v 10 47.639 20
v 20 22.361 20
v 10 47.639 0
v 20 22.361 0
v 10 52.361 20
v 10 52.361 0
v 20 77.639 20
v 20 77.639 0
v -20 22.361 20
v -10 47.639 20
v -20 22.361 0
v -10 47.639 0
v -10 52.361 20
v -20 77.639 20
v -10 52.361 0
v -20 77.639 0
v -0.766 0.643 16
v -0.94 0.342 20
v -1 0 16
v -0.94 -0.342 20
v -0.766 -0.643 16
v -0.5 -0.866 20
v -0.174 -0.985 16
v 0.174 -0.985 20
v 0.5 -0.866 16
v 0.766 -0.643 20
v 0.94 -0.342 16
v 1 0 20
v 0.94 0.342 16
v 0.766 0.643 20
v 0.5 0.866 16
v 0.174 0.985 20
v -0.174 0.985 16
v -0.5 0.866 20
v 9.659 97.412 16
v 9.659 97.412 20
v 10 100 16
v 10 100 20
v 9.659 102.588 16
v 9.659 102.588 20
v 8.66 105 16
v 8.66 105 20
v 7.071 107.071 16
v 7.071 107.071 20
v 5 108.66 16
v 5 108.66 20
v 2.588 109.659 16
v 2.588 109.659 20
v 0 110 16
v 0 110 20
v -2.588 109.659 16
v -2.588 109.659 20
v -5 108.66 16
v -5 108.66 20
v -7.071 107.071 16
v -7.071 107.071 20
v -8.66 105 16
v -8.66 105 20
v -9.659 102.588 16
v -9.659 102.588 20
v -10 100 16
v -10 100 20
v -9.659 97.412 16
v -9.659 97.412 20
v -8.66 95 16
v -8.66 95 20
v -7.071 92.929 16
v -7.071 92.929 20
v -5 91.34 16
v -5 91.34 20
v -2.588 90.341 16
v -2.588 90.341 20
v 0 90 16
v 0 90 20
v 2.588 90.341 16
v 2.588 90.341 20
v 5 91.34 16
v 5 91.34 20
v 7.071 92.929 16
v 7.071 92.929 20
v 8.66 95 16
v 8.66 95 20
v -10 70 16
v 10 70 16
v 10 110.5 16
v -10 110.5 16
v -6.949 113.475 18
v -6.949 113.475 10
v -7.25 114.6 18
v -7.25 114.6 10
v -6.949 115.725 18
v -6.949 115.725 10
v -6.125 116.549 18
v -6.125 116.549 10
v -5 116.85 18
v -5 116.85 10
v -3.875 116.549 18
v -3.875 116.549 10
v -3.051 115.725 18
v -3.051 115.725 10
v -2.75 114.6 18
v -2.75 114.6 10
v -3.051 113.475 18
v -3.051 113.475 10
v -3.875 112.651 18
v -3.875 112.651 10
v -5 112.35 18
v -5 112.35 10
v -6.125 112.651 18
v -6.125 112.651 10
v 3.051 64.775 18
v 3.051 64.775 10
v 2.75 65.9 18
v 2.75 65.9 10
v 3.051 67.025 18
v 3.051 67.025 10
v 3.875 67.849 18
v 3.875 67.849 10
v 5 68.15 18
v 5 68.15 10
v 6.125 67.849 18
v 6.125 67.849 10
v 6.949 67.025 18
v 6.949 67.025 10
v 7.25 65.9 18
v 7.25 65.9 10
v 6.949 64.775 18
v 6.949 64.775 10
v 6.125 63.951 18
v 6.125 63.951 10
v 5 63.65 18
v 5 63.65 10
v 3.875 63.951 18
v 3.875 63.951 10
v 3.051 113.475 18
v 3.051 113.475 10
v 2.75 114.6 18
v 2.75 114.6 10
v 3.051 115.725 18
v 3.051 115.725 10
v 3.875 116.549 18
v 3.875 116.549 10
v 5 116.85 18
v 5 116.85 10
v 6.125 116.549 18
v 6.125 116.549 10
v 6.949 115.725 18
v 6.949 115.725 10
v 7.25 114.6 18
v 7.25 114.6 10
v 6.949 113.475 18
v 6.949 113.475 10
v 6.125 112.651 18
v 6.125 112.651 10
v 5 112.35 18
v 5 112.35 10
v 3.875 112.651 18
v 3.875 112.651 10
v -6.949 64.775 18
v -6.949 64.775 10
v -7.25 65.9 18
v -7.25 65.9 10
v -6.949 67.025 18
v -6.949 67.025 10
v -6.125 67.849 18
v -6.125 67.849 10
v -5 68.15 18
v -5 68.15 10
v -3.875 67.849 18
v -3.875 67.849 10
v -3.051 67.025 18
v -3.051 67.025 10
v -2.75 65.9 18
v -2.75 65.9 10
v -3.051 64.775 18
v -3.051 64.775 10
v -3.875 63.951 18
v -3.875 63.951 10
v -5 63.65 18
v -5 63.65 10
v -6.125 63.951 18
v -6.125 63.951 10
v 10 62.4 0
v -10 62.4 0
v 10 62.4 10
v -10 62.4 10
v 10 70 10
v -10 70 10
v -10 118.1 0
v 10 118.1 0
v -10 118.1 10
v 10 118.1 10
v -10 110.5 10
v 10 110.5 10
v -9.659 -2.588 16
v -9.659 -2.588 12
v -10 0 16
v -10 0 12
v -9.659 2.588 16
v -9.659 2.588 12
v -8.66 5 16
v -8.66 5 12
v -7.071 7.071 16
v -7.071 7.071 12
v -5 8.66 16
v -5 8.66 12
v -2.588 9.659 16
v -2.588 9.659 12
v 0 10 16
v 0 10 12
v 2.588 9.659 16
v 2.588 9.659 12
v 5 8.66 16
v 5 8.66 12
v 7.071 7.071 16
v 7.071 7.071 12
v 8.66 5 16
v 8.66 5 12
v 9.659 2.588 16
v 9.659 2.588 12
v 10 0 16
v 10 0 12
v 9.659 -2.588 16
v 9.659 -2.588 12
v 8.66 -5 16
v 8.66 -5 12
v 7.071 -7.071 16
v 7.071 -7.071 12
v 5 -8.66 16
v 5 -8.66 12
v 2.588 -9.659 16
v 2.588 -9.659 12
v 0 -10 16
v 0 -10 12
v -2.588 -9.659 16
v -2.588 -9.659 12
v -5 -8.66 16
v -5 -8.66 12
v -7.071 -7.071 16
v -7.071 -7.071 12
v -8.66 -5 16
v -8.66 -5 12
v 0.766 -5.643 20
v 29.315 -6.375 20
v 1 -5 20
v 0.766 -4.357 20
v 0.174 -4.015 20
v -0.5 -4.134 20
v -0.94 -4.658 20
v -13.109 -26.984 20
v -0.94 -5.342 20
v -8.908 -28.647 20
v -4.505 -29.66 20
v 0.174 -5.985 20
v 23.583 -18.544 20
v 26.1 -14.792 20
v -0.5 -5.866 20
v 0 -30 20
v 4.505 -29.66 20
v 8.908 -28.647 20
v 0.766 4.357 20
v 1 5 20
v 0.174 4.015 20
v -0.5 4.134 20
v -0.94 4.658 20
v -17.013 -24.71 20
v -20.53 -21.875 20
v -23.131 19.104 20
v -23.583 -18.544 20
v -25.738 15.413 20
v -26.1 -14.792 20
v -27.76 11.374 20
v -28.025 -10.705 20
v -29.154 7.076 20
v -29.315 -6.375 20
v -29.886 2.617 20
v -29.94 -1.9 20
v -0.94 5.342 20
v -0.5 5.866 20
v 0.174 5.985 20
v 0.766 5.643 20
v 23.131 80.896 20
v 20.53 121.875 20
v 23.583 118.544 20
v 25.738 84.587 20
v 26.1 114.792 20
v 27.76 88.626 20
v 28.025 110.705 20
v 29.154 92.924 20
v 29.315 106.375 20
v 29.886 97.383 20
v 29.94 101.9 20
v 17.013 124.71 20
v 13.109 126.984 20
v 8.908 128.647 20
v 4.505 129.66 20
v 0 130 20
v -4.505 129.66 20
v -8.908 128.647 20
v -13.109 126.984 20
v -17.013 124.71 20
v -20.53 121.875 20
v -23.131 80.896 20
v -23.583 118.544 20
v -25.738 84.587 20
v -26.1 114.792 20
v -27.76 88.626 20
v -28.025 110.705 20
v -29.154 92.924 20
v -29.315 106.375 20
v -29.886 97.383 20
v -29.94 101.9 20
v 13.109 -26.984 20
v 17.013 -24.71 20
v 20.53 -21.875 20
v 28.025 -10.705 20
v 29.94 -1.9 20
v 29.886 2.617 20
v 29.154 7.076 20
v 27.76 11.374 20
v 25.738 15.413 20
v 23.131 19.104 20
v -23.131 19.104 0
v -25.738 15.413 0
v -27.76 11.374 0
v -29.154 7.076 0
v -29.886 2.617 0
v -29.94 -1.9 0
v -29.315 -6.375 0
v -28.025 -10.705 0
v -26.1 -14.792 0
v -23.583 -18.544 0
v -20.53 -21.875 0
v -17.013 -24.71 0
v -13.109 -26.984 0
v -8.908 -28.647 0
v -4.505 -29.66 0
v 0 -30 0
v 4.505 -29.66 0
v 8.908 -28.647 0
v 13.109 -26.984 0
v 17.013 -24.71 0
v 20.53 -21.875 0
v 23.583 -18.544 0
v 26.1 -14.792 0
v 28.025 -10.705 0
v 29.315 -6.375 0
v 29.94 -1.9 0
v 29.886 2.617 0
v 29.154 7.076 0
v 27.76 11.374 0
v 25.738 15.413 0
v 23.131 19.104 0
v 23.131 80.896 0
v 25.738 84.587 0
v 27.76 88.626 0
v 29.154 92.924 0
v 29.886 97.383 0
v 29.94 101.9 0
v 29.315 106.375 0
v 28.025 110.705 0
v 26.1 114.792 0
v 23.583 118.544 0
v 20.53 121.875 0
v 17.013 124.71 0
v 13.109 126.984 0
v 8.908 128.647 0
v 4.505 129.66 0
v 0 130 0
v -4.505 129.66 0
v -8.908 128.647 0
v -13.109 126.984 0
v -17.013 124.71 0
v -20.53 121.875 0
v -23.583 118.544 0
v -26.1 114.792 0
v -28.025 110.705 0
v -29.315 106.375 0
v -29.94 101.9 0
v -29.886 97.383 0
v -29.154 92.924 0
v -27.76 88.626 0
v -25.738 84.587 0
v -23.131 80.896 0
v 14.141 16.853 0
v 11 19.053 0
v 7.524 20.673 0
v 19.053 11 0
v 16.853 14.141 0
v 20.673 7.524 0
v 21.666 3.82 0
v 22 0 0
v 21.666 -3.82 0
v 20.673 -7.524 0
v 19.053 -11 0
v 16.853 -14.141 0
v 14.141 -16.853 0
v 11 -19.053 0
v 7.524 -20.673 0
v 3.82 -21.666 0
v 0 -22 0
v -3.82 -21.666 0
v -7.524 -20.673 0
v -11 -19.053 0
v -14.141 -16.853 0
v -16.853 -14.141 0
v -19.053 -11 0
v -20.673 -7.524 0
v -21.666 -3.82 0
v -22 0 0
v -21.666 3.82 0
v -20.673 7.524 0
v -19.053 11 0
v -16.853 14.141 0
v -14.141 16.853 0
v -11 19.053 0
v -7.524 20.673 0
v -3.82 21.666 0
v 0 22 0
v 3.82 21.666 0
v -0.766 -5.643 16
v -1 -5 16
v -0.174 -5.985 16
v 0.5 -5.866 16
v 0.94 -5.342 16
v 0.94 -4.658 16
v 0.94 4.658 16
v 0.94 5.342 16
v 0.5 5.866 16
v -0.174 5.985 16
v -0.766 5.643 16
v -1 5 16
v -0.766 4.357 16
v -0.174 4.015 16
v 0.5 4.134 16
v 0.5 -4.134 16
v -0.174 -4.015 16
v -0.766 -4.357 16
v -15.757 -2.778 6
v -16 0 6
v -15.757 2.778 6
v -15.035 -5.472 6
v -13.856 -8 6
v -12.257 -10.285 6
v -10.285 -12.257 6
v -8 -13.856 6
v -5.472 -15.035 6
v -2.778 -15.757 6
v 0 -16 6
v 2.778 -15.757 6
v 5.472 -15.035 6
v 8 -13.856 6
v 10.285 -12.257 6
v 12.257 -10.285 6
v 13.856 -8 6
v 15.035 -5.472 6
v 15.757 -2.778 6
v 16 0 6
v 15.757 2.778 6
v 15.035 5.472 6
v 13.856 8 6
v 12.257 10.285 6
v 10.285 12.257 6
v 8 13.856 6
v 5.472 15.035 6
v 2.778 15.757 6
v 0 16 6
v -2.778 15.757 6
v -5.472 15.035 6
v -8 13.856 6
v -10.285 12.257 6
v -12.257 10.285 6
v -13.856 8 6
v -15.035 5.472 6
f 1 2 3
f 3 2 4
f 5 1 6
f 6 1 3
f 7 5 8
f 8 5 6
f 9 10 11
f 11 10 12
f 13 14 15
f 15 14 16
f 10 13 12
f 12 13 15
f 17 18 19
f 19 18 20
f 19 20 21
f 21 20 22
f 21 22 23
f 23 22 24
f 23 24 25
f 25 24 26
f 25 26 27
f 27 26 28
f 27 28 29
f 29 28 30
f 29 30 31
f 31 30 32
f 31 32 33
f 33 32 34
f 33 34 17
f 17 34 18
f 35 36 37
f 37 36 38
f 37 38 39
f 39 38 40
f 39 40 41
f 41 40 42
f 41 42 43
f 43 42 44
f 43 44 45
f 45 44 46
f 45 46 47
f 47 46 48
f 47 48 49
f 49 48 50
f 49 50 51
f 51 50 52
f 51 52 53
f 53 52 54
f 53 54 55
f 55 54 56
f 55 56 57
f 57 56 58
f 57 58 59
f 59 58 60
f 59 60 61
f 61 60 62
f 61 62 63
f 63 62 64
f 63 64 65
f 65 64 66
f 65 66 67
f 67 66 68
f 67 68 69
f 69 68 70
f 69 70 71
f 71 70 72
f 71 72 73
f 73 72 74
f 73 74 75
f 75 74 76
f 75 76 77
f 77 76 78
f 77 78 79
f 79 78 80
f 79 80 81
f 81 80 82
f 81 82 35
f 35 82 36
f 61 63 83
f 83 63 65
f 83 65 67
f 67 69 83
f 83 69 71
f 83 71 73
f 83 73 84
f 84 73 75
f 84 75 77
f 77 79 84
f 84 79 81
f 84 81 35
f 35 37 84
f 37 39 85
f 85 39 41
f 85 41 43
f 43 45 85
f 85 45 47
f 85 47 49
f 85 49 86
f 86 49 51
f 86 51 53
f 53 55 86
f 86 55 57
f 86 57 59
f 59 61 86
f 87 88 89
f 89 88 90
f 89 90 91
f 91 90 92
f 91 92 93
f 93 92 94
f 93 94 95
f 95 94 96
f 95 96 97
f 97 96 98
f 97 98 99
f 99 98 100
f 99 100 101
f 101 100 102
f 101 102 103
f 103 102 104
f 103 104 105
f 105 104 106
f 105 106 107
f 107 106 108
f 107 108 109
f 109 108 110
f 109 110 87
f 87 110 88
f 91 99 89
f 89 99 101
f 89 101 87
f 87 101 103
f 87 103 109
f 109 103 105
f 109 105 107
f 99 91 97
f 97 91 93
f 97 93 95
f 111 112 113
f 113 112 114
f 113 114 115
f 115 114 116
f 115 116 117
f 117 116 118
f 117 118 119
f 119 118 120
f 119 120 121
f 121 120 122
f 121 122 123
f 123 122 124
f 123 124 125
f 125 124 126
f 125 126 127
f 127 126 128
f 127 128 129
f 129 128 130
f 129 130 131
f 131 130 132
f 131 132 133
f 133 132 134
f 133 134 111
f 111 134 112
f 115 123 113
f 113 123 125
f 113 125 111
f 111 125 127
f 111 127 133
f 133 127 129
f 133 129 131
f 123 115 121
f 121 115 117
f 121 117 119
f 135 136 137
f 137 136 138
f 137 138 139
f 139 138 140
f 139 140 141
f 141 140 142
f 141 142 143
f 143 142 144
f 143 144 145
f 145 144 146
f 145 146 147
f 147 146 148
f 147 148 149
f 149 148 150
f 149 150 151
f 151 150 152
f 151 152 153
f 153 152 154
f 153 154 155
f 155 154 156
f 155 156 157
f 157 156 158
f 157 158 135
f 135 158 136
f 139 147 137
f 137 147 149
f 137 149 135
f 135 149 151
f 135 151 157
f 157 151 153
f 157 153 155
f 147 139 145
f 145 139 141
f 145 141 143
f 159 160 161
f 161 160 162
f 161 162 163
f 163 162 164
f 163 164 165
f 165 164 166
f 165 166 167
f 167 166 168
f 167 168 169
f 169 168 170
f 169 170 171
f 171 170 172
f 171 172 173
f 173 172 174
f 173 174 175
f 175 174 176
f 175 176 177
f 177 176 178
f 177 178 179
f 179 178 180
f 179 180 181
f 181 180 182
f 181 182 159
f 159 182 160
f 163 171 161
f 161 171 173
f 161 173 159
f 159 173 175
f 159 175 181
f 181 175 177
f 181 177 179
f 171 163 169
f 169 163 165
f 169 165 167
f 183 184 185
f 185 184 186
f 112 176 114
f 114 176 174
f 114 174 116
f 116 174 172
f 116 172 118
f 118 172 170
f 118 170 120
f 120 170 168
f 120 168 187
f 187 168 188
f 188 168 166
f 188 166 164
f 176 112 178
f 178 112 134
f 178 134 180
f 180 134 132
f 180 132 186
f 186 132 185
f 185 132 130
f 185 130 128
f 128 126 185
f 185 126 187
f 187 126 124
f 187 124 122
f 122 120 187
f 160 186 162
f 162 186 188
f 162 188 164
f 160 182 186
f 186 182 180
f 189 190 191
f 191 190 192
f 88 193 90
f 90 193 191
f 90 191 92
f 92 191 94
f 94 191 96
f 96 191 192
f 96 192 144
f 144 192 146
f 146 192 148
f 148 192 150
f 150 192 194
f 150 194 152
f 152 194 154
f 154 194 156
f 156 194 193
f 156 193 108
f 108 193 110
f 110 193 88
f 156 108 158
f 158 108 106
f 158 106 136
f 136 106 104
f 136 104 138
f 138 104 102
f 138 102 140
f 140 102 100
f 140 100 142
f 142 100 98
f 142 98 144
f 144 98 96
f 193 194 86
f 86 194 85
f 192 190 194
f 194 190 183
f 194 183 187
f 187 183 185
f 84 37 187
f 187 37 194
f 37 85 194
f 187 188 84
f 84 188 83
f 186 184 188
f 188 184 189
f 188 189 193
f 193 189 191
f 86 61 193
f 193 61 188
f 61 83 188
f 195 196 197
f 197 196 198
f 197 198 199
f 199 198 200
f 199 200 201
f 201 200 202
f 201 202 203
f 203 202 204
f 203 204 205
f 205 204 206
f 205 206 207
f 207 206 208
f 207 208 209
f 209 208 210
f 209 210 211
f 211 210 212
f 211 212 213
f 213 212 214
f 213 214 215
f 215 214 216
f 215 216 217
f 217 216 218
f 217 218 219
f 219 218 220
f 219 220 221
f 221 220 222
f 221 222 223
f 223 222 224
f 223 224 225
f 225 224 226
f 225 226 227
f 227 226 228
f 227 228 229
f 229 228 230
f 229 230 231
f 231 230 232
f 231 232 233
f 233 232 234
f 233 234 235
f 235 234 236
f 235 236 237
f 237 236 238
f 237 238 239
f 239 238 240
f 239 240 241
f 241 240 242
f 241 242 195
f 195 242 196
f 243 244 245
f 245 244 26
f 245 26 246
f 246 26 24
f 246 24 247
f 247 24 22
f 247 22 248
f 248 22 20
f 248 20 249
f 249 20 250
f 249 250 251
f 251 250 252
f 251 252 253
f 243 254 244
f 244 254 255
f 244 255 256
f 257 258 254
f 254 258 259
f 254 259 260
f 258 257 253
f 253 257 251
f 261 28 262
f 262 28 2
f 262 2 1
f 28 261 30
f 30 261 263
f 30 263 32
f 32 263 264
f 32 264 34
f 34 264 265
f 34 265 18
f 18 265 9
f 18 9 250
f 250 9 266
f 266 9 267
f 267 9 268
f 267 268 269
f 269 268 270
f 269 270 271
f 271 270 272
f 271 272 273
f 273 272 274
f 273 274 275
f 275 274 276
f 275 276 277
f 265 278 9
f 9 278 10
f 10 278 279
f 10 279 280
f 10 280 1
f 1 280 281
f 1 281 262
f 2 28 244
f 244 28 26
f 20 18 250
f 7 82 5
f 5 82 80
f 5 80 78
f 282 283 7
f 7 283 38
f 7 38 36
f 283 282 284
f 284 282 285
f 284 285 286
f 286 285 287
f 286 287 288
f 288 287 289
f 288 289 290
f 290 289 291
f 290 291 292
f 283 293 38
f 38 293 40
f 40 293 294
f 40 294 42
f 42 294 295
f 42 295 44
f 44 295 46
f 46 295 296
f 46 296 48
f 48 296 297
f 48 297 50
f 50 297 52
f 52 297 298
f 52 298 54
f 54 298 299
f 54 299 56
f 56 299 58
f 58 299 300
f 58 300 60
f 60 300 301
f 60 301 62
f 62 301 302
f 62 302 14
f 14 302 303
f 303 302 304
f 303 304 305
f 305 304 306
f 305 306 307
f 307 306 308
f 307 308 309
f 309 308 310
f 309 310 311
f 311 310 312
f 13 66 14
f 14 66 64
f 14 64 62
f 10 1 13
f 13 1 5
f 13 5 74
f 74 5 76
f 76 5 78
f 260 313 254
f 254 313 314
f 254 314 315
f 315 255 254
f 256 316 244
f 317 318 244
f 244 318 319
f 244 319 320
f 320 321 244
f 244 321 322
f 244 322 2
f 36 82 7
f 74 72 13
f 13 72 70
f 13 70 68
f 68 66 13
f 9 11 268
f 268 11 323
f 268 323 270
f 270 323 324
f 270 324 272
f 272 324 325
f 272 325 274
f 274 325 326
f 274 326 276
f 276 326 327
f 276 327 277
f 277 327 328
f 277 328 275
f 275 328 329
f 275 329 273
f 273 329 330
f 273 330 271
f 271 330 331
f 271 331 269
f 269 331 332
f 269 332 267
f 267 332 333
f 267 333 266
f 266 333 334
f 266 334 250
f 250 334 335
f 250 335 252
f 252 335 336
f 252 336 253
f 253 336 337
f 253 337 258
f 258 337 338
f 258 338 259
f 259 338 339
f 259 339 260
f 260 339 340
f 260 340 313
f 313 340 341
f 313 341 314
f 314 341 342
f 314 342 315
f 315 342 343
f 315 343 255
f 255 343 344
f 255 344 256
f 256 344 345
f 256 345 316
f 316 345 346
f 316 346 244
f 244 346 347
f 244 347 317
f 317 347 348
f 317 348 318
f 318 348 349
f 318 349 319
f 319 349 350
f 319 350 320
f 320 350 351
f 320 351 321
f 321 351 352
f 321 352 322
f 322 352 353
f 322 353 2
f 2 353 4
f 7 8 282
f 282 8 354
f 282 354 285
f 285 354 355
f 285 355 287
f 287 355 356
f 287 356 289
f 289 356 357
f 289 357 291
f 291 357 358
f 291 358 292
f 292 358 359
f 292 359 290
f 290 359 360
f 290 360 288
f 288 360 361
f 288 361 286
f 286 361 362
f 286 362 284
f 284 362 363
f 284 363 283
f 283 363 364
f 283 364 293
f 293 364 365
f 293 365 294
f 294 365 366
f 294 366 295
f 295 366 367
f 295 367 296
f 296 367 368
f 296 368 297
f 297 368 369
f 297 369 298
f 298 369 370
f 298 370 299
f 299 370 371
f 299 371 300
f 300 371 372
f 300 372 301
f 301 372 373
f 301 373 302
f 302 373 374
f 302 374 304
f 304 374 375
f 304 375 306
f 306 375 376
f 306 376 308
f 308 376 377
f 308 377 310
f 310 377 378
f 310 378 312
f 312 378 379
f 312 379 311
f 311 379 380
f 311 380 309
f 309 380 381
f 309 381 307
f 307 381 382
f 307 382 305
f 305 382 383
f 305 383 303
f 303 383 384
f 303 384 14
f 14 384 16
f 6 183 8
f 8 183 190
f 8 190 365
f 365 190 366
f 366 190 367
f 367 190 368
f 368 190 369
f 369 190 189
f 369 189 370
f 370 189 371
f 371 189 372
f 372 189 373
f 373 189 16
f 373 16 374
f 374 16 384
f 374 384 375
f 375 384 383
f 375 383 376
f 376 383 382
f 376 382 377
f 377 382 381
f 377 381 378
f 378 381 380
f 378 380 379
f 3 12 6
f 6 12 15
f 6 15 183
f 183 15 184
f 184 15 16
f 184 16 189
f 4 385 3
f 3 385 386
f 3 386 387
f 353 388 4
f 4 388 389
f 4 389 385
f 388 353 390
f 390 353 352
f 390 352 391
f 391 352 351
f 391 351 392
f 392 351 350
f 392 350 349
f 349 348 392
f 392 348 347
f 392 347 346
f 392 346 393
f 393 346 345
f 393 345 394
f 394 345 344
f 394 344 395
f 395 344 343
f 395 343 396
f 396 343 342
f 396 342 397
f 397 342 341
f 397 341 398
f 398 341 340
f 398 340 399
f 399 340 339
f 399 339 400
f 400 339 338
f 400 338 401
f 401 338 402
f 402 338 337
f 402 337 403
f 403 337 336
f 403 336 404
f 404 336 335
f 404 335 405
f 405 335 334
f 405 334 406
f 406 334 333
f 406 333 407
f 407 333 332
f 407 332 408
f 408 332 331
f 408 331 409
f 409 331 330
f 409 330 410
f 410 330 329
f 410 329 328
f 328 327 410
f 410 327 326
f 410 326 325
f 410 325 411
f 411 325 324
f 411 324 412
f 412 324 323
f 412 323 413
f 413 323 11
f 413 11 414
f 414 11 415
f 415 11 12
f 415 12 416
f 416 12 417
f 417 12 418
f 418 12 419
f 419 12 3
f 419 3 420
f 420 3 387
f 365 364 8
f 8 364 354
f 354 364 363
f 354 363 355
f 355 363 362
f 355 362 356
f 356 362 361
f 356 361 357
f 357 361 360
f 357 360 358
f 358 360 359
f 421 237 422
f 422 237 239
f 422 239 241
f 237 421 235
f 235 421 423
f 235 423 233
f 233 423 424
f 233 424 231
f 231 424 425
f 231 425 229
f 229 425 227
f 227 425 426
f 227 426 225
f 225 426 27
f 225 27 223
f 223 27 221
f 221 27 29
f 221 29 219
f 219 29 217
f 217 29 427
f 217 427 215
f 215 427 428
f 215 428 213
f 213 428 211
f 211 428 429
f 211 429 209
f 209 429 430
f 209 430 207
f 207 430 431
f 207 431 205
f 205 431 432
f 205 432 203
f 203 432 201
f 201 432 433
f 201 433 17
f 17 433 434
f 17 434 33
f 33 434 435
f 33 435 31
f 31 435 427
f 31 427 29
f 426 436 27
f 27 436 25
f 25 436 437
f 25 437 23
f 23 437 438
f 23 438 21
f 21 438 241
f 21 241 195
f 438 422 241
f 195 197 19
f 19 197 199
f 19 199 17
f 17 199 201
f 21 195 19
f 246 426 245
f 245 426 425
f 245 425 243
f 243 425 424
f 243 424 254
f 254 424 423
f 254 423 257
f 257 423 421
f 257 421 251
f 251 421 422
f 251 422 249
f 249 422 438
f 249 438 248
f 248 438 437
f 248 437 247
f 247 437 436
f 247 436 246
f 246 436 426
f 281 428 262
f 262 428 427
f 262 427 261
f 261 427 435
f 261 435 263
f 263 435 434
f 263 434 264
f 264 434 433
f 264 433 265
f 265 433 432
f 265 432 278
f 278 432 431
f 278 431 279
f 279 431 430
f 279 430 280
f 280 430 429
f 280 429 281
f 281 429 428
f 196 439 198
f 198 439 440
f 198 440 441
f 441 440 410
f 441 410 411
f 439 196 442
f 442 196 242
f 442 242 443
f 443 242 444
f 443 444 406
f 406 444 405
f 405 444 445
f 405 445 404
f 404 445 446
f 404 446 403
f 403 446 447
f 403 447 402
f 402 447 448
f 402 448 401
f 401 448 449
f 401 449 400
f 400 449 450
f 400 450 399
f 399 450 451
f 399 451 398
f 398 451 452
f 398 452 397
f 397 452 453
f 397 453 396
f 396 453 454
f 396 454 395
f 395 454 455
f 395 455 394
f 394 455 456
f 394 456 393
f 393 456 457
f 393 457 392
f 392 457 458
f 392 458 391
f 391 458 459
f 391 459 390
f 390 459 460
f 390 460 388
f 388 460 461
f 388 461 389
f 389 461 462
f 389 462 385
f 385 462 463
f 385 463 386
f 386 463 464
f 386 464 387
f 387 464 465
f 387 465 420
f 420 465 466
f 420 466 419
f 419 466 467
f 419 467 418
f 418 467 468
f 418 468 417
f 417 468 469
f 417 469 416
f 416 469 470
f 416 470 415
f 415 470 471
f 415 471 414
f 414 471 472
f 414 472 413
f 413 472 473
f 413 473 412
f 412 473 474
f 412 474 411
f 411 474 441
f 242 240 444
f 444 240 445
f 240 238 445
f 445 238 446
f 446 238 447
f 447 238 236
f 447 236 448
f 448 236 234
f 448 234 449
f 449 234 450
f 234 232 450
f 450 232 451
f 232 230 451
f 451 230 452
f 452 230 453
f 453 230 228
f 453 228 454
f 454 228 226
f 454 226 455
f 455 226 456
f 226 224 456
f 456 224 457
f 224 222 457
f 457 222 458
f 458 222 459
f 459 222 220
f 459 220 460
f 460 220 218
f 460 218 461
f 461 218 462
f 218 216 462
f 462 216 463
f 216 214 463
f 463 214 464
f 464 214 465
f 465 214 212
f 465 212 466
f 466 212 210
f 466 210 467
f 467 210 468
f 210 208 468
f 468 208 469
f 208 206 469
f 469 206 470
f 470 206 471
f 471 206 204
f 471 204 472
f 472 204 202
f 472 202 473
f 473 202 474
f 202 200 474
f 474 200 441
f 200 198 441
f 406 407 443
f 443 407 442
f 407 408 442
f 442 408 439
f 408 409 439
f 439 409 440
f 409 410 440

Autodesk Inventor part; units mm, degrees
ref_plane "YZ Plane" through (0, 0, 0) normal (1, 0, 0) x (0, 1, 0)
ref_plane "XZ Plane" through (0, 0, 0) normal (0, 1, 0) x (-1, 0, 0)
ref_plane "XY Plane" through (0, 0, 0) normal (0, 0, 1) x (1, 0, 0)
sketch "Sketch1" plane through (0, 0, 0) normal (0, 0, 1) x (1, 0, 0)
  circle A0 centre (0, 0) radius 30
  circle A1 centre (0, 100) radius 30
  line L0 (-20, 0) -> (20, 0)
  line L1 (20, 0) -> (20, 100)
  line L2 (20, 100) -> (-20, 100)
  line L3 (-20, 100) -> (-20, 0)
  point P0 (20, 77.6393)
  point P1 (-20, 77.6393)
  point P2 (-20, 22.3607)
  point P3 (20, 22.3607)
  dimension "d0" = 60
  dimension "d1" = 60
  dimension "d2" = 40
extrude "Extrusion1" add sketch "Sketch1" along normal blind 20
sketch "Sketch2" plane through (0, 0, 20) normal (0, 0, 1) x (1, 0, 0)
  circle A0 centre (0, 0) radius 10
  dimension "d5" = 20
extrude "Extrusion2" cut sketch "Sketch2" against normal blind 16
sketch "Sketch3" plane through (0, 0, 4) normal (0, 0, 1) x (1, 0, 0)
  circle A0 centre (0, 0) radius 1
  circle A1 centre (5, 0) radius 1
  circle A2 centre (-5, 0) radius 1
  dimension "d11" = 2
  dimension "d12" = 2
  dimension "d13" = 2
extrude "Extrusion3" cut sketch "Sketch3" against normal blind 28.45
sketch "Sketch4" plane through (0, 0, 0) normal (0, 0, -1) x (-1, 0, 0)
  line L0 (0, 100) -> (10, 100)
  line L1 (10, 100) -> (10, 70)
  line L2 (10, 70) -> (0, 70)
  line L3 (0, 70) -> (0, 100)
  line L4 (0, 100) -> (-10, 100)
  line L5 (-10, 100) -> (-10, 70)
  line L6 (-10, 70) -> (0, 70)
  line L7 (0, 70) -> (0, 100)
  line L8 (10, 100) -> (-10, 100)
  line L9 (-10, 100) -> (-10, 110.5)
  line L10 (-10, 110.5) -> (10, 110.5)
  line L11 (10, 110.5) -> (10, 100)
  point P0 (0, 0)
  dimension "d16" = 10
  dimension "d17" = 30
  dimension "d18" = 10
  dimension "d19" = 10.5
extrude "Extrusion4" cut sketch "Sketch4" against normal blind 16
sketch "Sketch5" plane through (0, 0, 0) normal (0, 0, -1) x (-1, 0, 0)
  line L0 (10, 110.5) -> (10, 70) projected
  line L1 (10, 110.5) -> (-10, 110.5)
  line L2 (-10, 110.5) -> (-10, 118.1)
  line L3 (-10, 118.1) -> (10, 118.1)
  line L4 (10, 118.1) -> (10, 110.5)
  line L5 (10, 70) -> (-10, 70)
  line L6 (-10, 70) -> (-10, 62.4)
  line L7 (-10, 62.4) -> (10, 62.4)
  line L8 (10, 62.4) -> (10, 70)
  line L9 (-10, 110.5) -> (10, 110.5) projected
  line L10 (10, 110.5) -> (-10, 110.5)
  line L11 (-10, 110.5) -> (-10, 114.6)
  line L12 (-10, 114.6) -> (10, 114.6)
  line L13 (10, 114.6) -> (10, 110.5)
  line L14 (10, 70) -> (-10, 70)
  line L15 (-10, 70) -> (-10, 65.9)
  line L16 (-10, 65.9) -> (10, 65.9)
  line L17 (10, 65.9) -> (10, 70)
  line L18 (0, 110.5) -> (5, 110.5)
  line L19 (5, 110.5) -> (5, 114.6)
  line L20 (5, 114.6) -> (0, 114.6)
  line L21 (0, 114.6) -> (0, 110.5)
  line L22 (0, 110.5) -> (-5, 110.5)
  line L23 (-5, 110.5) -> (-5, 114.6)
  line L24 (-5, 114.6) -> (0, 114.6)
  line L25 (0, 114.6) -> (0, 110.5)
  line L26 (0, 70) -> (5, 70)
  line L27 (5, 70) -> (5, 65.9)
  line L28 (5, 65.9) -> (0, 65.9)
  line L29 (0, 65.9) -> (0, 70)
  line L30 (0, 70) -> (-5, 70)
  line L31 (-5, 70) -> (-5, 65.9)
  line L32 (-5, 65.9) -> (0, 65.9)
  line L33 (0, 65.9) -> (0, 70)
  point P0 (0, 0)
  dimension "d22" = 7.6
  dimension "d23" = 7.6
  dimension "d24" = 4.1
  dimension "d25" = 4.1
  dimension "d26" = 5
  dimension "d27" = 5
  dimension "d28" = 5
  dimension "d29" = 5
extrude "Extrusion5" cut sketch "Sketch5" against normal blind 10
sketch "Sketch6" plane through (0, 0, 10) normal (0, 0, -1) x (-1, 0, 0)
  line L0 (10, 110.5) -> (10, 70) projected
  line L1 (-10, 62.4) -> (-10, 118.1) projected
  line L2 (10, 110.5) -> (-10, 110.5)
  line L3 (-10, 110.5) -> (-10, 114.6)
  line L4 (-10, 114.6) -> (10, 114.6)
  line L5 (10, 114.6) -> (10, 110.5)
  line L6 (10, 70) -> (-10, 70) projected
  line L7 (-10, 62.4) -> (-10, 70) projected
  line L8 (10, 70) -> (-10, 70)
  line L9 (-10, 70) -> (-10, 65.9)
  line L10 (-10, 65.9) -> (10, 65.9)
  line L11 (10, 65.9) -> (10, 70)
  line L12 (-10, 110.5) -> (10, 110.5) projected
  line L13 (0, 114.6) -> (5, 114.6)
  line L14 (5, 114.6) -> (5, 110.5)
  line L15 (5, 110.5) -> (0, 110.5)
  line L16 (0, 110.5) -> (0, 114.6)
  line L17 (0, 110.5) -> (-5, 110.5)
  line L18 (-5, 110.5) -> (-5, 114.6)
  line L19 (-5, 114.6) -> (0, 114.6)
  line L20 (0, 114.6) -> (0, 110.5)
  line L21 (0, 70) -> (5, 70)
  line L22 (5, 70) -> (5, 65.9)
  line L23 (5, 65.9) -> (0, 65.9)
  line L24 (0, 65.9) -> (0, 70)
  line L25 (0, 70) -> (-5, 70)
  line L26 (-5, 70) -> (-5, 65.9)
  line L27 (-5, 65.9) -> (0, 65.9)
  line L28 (0, 65.9) -> (0, 70)
  circle A0 centre (5, 114.6) radius 2.25
  circle A1 centre (-5, 114.6) radius 2.25
  circle A2 centre (5, 65.9) radius 2.25
  circle A3 centre (-5, 65.9) radius 2.25
  point P0 (0, 0)
  dimension "d32" = 4.1
  dimension "d33" = 4.1
  dimension "d34" = 5
  dimension "d35" = 5
  dimension "d36" = 4.5
  dimension "d37" = 4.5
  dimension "d38" = 4.5
  dimension "d39" = 4.5
extrude "Extrusion6" cut sketch "Sketch6" against normal blind 8 contours A0 L4 L14 | L14 L4 A0 | L4 A0 | A2 L10 L22 | L22 L10 A2 | A2 L10 | A1 L4 L18 | L18 L4 A1 | L4 A1 | A3 L10 L26 | L26 L10 A3 | A3 L10
thread "Thread1" size "M4.5x0.75" class "6H" standard "ANSI Metric M Profile" full length
thread "Thread2" size "M4.5x0.75" class "6H" standard "ANSI Metric M Profile" full length
thread "Thread3" size "M4.5x0.75" class "6H" standard "ANSI Metric M Profile" full length
thread "Thread4" size "M4.5x0.75" class "6H" standard "ANSI Metric M Profile" full length
sketch "Sketch7" plane through (0, 0, 20) normal (0, 0, 1) x (1, 0, 0)
  circle A0 centre (0, 100) radius 10
  point P0 (0, 0)
  dimension "d50" = 20
extrude "Extrusion7" cut sketch "Sketch7" against normal blind 4
sketch "Sketch8" plane through (0, 0, 0) normal (0, 0, -1) x (-1, 0, 0)
  line L0 (20, 77.6393) -> (20, 22.3607) projected
  arc A0 (20, 77.6393) -> (-20, 77.6393) centre (0, 100) ccw projected
  line L1 (20, 22.3607) -> (-20, 22.3607)
  line L2 (-20, 22.3607) -> (-20, 77.6393)
  line L3 (-20, 77.6393) -> (20, 77.6393)
  line L4 (20, 77.6393) -> (20, 22.3607)
  line L5 (10, 118.1) -> (10, 62.4) projected
  line L6 (10, 77.6393) -> (-10, 77.6393)
  line L7 (-10, 77.6393) -> (-10, 47.6393)
  line L8 (-10, 47.6393) -> (10, 47.6393)
  line L9 (10, 47.6393) -> (10, 77.6393)
  line L10 (-10, 22.3607) -> (10, 22.3607)
  line L11 (10, 22.3607) -> (10, 52.3607)
  line L12 (10, 52.3607) -> (-10, 52.3607)
  line L13 (-10, 52.3607) -> (-10, 22.3607)
  line L14 (20, 77.6393) -> (10, 52.3607)
  line L15 (10, 47.6393) -> (20, 22.3607)
  line L16 (-20, 77.6393) -> (-10, 52.3607)
  line L17 (-10, 47.6393) -> (-20, 22.3607)
  point P0 (0, 0)
  dimension "d53" = 20
  dimension "d54" = 30
  dimension "d55" = 30
extrude "Extrusion8" cut sketch "Sketch8" against normal blind 72.2 contours L0 L15 L9 L14 | L16 L7 L17 L2
sketch "Sketch9" plane through (0, 0, 20) normal (0, 0, 1) x (1, 0, 0)
  circle A0 centre (0, 0) radius 1 projected
  circle A1 centre (0, 0) radius 10
extrude "Extrusion9" add sketch "Sketch9" against normal blind 20
sketch "Sketch10" plane through (0, 0, 0) normal (0, 0, -1) x (-1, 0, 0)
  circle A0 centre (0, 0) radius 1 projected
  circle A1 centre (0, 0) radius 10
  dimension "d60" = 20
extrude "Extrusion10" cut sketch "Sketch10" against normal blind 16
sketch "Sketch11" plane through (0, 0, 16) normal (0, 0, -1) x (-1, 0, 0)
  circle A0 centre (0, 5) radius 1
  circle A1 centre (0, -5) radius 1
  point P0 (0, 0)
  dimension "d63" = 2
  dimension "d64" = 2
extrude "Extrusion11" cut sketch "Sketch11" against normal blind 22.1
chamfer "Chamfer2" distance 12 angle 45 1 edges at (10, 0, 0)
properties part number "2ndArm"
